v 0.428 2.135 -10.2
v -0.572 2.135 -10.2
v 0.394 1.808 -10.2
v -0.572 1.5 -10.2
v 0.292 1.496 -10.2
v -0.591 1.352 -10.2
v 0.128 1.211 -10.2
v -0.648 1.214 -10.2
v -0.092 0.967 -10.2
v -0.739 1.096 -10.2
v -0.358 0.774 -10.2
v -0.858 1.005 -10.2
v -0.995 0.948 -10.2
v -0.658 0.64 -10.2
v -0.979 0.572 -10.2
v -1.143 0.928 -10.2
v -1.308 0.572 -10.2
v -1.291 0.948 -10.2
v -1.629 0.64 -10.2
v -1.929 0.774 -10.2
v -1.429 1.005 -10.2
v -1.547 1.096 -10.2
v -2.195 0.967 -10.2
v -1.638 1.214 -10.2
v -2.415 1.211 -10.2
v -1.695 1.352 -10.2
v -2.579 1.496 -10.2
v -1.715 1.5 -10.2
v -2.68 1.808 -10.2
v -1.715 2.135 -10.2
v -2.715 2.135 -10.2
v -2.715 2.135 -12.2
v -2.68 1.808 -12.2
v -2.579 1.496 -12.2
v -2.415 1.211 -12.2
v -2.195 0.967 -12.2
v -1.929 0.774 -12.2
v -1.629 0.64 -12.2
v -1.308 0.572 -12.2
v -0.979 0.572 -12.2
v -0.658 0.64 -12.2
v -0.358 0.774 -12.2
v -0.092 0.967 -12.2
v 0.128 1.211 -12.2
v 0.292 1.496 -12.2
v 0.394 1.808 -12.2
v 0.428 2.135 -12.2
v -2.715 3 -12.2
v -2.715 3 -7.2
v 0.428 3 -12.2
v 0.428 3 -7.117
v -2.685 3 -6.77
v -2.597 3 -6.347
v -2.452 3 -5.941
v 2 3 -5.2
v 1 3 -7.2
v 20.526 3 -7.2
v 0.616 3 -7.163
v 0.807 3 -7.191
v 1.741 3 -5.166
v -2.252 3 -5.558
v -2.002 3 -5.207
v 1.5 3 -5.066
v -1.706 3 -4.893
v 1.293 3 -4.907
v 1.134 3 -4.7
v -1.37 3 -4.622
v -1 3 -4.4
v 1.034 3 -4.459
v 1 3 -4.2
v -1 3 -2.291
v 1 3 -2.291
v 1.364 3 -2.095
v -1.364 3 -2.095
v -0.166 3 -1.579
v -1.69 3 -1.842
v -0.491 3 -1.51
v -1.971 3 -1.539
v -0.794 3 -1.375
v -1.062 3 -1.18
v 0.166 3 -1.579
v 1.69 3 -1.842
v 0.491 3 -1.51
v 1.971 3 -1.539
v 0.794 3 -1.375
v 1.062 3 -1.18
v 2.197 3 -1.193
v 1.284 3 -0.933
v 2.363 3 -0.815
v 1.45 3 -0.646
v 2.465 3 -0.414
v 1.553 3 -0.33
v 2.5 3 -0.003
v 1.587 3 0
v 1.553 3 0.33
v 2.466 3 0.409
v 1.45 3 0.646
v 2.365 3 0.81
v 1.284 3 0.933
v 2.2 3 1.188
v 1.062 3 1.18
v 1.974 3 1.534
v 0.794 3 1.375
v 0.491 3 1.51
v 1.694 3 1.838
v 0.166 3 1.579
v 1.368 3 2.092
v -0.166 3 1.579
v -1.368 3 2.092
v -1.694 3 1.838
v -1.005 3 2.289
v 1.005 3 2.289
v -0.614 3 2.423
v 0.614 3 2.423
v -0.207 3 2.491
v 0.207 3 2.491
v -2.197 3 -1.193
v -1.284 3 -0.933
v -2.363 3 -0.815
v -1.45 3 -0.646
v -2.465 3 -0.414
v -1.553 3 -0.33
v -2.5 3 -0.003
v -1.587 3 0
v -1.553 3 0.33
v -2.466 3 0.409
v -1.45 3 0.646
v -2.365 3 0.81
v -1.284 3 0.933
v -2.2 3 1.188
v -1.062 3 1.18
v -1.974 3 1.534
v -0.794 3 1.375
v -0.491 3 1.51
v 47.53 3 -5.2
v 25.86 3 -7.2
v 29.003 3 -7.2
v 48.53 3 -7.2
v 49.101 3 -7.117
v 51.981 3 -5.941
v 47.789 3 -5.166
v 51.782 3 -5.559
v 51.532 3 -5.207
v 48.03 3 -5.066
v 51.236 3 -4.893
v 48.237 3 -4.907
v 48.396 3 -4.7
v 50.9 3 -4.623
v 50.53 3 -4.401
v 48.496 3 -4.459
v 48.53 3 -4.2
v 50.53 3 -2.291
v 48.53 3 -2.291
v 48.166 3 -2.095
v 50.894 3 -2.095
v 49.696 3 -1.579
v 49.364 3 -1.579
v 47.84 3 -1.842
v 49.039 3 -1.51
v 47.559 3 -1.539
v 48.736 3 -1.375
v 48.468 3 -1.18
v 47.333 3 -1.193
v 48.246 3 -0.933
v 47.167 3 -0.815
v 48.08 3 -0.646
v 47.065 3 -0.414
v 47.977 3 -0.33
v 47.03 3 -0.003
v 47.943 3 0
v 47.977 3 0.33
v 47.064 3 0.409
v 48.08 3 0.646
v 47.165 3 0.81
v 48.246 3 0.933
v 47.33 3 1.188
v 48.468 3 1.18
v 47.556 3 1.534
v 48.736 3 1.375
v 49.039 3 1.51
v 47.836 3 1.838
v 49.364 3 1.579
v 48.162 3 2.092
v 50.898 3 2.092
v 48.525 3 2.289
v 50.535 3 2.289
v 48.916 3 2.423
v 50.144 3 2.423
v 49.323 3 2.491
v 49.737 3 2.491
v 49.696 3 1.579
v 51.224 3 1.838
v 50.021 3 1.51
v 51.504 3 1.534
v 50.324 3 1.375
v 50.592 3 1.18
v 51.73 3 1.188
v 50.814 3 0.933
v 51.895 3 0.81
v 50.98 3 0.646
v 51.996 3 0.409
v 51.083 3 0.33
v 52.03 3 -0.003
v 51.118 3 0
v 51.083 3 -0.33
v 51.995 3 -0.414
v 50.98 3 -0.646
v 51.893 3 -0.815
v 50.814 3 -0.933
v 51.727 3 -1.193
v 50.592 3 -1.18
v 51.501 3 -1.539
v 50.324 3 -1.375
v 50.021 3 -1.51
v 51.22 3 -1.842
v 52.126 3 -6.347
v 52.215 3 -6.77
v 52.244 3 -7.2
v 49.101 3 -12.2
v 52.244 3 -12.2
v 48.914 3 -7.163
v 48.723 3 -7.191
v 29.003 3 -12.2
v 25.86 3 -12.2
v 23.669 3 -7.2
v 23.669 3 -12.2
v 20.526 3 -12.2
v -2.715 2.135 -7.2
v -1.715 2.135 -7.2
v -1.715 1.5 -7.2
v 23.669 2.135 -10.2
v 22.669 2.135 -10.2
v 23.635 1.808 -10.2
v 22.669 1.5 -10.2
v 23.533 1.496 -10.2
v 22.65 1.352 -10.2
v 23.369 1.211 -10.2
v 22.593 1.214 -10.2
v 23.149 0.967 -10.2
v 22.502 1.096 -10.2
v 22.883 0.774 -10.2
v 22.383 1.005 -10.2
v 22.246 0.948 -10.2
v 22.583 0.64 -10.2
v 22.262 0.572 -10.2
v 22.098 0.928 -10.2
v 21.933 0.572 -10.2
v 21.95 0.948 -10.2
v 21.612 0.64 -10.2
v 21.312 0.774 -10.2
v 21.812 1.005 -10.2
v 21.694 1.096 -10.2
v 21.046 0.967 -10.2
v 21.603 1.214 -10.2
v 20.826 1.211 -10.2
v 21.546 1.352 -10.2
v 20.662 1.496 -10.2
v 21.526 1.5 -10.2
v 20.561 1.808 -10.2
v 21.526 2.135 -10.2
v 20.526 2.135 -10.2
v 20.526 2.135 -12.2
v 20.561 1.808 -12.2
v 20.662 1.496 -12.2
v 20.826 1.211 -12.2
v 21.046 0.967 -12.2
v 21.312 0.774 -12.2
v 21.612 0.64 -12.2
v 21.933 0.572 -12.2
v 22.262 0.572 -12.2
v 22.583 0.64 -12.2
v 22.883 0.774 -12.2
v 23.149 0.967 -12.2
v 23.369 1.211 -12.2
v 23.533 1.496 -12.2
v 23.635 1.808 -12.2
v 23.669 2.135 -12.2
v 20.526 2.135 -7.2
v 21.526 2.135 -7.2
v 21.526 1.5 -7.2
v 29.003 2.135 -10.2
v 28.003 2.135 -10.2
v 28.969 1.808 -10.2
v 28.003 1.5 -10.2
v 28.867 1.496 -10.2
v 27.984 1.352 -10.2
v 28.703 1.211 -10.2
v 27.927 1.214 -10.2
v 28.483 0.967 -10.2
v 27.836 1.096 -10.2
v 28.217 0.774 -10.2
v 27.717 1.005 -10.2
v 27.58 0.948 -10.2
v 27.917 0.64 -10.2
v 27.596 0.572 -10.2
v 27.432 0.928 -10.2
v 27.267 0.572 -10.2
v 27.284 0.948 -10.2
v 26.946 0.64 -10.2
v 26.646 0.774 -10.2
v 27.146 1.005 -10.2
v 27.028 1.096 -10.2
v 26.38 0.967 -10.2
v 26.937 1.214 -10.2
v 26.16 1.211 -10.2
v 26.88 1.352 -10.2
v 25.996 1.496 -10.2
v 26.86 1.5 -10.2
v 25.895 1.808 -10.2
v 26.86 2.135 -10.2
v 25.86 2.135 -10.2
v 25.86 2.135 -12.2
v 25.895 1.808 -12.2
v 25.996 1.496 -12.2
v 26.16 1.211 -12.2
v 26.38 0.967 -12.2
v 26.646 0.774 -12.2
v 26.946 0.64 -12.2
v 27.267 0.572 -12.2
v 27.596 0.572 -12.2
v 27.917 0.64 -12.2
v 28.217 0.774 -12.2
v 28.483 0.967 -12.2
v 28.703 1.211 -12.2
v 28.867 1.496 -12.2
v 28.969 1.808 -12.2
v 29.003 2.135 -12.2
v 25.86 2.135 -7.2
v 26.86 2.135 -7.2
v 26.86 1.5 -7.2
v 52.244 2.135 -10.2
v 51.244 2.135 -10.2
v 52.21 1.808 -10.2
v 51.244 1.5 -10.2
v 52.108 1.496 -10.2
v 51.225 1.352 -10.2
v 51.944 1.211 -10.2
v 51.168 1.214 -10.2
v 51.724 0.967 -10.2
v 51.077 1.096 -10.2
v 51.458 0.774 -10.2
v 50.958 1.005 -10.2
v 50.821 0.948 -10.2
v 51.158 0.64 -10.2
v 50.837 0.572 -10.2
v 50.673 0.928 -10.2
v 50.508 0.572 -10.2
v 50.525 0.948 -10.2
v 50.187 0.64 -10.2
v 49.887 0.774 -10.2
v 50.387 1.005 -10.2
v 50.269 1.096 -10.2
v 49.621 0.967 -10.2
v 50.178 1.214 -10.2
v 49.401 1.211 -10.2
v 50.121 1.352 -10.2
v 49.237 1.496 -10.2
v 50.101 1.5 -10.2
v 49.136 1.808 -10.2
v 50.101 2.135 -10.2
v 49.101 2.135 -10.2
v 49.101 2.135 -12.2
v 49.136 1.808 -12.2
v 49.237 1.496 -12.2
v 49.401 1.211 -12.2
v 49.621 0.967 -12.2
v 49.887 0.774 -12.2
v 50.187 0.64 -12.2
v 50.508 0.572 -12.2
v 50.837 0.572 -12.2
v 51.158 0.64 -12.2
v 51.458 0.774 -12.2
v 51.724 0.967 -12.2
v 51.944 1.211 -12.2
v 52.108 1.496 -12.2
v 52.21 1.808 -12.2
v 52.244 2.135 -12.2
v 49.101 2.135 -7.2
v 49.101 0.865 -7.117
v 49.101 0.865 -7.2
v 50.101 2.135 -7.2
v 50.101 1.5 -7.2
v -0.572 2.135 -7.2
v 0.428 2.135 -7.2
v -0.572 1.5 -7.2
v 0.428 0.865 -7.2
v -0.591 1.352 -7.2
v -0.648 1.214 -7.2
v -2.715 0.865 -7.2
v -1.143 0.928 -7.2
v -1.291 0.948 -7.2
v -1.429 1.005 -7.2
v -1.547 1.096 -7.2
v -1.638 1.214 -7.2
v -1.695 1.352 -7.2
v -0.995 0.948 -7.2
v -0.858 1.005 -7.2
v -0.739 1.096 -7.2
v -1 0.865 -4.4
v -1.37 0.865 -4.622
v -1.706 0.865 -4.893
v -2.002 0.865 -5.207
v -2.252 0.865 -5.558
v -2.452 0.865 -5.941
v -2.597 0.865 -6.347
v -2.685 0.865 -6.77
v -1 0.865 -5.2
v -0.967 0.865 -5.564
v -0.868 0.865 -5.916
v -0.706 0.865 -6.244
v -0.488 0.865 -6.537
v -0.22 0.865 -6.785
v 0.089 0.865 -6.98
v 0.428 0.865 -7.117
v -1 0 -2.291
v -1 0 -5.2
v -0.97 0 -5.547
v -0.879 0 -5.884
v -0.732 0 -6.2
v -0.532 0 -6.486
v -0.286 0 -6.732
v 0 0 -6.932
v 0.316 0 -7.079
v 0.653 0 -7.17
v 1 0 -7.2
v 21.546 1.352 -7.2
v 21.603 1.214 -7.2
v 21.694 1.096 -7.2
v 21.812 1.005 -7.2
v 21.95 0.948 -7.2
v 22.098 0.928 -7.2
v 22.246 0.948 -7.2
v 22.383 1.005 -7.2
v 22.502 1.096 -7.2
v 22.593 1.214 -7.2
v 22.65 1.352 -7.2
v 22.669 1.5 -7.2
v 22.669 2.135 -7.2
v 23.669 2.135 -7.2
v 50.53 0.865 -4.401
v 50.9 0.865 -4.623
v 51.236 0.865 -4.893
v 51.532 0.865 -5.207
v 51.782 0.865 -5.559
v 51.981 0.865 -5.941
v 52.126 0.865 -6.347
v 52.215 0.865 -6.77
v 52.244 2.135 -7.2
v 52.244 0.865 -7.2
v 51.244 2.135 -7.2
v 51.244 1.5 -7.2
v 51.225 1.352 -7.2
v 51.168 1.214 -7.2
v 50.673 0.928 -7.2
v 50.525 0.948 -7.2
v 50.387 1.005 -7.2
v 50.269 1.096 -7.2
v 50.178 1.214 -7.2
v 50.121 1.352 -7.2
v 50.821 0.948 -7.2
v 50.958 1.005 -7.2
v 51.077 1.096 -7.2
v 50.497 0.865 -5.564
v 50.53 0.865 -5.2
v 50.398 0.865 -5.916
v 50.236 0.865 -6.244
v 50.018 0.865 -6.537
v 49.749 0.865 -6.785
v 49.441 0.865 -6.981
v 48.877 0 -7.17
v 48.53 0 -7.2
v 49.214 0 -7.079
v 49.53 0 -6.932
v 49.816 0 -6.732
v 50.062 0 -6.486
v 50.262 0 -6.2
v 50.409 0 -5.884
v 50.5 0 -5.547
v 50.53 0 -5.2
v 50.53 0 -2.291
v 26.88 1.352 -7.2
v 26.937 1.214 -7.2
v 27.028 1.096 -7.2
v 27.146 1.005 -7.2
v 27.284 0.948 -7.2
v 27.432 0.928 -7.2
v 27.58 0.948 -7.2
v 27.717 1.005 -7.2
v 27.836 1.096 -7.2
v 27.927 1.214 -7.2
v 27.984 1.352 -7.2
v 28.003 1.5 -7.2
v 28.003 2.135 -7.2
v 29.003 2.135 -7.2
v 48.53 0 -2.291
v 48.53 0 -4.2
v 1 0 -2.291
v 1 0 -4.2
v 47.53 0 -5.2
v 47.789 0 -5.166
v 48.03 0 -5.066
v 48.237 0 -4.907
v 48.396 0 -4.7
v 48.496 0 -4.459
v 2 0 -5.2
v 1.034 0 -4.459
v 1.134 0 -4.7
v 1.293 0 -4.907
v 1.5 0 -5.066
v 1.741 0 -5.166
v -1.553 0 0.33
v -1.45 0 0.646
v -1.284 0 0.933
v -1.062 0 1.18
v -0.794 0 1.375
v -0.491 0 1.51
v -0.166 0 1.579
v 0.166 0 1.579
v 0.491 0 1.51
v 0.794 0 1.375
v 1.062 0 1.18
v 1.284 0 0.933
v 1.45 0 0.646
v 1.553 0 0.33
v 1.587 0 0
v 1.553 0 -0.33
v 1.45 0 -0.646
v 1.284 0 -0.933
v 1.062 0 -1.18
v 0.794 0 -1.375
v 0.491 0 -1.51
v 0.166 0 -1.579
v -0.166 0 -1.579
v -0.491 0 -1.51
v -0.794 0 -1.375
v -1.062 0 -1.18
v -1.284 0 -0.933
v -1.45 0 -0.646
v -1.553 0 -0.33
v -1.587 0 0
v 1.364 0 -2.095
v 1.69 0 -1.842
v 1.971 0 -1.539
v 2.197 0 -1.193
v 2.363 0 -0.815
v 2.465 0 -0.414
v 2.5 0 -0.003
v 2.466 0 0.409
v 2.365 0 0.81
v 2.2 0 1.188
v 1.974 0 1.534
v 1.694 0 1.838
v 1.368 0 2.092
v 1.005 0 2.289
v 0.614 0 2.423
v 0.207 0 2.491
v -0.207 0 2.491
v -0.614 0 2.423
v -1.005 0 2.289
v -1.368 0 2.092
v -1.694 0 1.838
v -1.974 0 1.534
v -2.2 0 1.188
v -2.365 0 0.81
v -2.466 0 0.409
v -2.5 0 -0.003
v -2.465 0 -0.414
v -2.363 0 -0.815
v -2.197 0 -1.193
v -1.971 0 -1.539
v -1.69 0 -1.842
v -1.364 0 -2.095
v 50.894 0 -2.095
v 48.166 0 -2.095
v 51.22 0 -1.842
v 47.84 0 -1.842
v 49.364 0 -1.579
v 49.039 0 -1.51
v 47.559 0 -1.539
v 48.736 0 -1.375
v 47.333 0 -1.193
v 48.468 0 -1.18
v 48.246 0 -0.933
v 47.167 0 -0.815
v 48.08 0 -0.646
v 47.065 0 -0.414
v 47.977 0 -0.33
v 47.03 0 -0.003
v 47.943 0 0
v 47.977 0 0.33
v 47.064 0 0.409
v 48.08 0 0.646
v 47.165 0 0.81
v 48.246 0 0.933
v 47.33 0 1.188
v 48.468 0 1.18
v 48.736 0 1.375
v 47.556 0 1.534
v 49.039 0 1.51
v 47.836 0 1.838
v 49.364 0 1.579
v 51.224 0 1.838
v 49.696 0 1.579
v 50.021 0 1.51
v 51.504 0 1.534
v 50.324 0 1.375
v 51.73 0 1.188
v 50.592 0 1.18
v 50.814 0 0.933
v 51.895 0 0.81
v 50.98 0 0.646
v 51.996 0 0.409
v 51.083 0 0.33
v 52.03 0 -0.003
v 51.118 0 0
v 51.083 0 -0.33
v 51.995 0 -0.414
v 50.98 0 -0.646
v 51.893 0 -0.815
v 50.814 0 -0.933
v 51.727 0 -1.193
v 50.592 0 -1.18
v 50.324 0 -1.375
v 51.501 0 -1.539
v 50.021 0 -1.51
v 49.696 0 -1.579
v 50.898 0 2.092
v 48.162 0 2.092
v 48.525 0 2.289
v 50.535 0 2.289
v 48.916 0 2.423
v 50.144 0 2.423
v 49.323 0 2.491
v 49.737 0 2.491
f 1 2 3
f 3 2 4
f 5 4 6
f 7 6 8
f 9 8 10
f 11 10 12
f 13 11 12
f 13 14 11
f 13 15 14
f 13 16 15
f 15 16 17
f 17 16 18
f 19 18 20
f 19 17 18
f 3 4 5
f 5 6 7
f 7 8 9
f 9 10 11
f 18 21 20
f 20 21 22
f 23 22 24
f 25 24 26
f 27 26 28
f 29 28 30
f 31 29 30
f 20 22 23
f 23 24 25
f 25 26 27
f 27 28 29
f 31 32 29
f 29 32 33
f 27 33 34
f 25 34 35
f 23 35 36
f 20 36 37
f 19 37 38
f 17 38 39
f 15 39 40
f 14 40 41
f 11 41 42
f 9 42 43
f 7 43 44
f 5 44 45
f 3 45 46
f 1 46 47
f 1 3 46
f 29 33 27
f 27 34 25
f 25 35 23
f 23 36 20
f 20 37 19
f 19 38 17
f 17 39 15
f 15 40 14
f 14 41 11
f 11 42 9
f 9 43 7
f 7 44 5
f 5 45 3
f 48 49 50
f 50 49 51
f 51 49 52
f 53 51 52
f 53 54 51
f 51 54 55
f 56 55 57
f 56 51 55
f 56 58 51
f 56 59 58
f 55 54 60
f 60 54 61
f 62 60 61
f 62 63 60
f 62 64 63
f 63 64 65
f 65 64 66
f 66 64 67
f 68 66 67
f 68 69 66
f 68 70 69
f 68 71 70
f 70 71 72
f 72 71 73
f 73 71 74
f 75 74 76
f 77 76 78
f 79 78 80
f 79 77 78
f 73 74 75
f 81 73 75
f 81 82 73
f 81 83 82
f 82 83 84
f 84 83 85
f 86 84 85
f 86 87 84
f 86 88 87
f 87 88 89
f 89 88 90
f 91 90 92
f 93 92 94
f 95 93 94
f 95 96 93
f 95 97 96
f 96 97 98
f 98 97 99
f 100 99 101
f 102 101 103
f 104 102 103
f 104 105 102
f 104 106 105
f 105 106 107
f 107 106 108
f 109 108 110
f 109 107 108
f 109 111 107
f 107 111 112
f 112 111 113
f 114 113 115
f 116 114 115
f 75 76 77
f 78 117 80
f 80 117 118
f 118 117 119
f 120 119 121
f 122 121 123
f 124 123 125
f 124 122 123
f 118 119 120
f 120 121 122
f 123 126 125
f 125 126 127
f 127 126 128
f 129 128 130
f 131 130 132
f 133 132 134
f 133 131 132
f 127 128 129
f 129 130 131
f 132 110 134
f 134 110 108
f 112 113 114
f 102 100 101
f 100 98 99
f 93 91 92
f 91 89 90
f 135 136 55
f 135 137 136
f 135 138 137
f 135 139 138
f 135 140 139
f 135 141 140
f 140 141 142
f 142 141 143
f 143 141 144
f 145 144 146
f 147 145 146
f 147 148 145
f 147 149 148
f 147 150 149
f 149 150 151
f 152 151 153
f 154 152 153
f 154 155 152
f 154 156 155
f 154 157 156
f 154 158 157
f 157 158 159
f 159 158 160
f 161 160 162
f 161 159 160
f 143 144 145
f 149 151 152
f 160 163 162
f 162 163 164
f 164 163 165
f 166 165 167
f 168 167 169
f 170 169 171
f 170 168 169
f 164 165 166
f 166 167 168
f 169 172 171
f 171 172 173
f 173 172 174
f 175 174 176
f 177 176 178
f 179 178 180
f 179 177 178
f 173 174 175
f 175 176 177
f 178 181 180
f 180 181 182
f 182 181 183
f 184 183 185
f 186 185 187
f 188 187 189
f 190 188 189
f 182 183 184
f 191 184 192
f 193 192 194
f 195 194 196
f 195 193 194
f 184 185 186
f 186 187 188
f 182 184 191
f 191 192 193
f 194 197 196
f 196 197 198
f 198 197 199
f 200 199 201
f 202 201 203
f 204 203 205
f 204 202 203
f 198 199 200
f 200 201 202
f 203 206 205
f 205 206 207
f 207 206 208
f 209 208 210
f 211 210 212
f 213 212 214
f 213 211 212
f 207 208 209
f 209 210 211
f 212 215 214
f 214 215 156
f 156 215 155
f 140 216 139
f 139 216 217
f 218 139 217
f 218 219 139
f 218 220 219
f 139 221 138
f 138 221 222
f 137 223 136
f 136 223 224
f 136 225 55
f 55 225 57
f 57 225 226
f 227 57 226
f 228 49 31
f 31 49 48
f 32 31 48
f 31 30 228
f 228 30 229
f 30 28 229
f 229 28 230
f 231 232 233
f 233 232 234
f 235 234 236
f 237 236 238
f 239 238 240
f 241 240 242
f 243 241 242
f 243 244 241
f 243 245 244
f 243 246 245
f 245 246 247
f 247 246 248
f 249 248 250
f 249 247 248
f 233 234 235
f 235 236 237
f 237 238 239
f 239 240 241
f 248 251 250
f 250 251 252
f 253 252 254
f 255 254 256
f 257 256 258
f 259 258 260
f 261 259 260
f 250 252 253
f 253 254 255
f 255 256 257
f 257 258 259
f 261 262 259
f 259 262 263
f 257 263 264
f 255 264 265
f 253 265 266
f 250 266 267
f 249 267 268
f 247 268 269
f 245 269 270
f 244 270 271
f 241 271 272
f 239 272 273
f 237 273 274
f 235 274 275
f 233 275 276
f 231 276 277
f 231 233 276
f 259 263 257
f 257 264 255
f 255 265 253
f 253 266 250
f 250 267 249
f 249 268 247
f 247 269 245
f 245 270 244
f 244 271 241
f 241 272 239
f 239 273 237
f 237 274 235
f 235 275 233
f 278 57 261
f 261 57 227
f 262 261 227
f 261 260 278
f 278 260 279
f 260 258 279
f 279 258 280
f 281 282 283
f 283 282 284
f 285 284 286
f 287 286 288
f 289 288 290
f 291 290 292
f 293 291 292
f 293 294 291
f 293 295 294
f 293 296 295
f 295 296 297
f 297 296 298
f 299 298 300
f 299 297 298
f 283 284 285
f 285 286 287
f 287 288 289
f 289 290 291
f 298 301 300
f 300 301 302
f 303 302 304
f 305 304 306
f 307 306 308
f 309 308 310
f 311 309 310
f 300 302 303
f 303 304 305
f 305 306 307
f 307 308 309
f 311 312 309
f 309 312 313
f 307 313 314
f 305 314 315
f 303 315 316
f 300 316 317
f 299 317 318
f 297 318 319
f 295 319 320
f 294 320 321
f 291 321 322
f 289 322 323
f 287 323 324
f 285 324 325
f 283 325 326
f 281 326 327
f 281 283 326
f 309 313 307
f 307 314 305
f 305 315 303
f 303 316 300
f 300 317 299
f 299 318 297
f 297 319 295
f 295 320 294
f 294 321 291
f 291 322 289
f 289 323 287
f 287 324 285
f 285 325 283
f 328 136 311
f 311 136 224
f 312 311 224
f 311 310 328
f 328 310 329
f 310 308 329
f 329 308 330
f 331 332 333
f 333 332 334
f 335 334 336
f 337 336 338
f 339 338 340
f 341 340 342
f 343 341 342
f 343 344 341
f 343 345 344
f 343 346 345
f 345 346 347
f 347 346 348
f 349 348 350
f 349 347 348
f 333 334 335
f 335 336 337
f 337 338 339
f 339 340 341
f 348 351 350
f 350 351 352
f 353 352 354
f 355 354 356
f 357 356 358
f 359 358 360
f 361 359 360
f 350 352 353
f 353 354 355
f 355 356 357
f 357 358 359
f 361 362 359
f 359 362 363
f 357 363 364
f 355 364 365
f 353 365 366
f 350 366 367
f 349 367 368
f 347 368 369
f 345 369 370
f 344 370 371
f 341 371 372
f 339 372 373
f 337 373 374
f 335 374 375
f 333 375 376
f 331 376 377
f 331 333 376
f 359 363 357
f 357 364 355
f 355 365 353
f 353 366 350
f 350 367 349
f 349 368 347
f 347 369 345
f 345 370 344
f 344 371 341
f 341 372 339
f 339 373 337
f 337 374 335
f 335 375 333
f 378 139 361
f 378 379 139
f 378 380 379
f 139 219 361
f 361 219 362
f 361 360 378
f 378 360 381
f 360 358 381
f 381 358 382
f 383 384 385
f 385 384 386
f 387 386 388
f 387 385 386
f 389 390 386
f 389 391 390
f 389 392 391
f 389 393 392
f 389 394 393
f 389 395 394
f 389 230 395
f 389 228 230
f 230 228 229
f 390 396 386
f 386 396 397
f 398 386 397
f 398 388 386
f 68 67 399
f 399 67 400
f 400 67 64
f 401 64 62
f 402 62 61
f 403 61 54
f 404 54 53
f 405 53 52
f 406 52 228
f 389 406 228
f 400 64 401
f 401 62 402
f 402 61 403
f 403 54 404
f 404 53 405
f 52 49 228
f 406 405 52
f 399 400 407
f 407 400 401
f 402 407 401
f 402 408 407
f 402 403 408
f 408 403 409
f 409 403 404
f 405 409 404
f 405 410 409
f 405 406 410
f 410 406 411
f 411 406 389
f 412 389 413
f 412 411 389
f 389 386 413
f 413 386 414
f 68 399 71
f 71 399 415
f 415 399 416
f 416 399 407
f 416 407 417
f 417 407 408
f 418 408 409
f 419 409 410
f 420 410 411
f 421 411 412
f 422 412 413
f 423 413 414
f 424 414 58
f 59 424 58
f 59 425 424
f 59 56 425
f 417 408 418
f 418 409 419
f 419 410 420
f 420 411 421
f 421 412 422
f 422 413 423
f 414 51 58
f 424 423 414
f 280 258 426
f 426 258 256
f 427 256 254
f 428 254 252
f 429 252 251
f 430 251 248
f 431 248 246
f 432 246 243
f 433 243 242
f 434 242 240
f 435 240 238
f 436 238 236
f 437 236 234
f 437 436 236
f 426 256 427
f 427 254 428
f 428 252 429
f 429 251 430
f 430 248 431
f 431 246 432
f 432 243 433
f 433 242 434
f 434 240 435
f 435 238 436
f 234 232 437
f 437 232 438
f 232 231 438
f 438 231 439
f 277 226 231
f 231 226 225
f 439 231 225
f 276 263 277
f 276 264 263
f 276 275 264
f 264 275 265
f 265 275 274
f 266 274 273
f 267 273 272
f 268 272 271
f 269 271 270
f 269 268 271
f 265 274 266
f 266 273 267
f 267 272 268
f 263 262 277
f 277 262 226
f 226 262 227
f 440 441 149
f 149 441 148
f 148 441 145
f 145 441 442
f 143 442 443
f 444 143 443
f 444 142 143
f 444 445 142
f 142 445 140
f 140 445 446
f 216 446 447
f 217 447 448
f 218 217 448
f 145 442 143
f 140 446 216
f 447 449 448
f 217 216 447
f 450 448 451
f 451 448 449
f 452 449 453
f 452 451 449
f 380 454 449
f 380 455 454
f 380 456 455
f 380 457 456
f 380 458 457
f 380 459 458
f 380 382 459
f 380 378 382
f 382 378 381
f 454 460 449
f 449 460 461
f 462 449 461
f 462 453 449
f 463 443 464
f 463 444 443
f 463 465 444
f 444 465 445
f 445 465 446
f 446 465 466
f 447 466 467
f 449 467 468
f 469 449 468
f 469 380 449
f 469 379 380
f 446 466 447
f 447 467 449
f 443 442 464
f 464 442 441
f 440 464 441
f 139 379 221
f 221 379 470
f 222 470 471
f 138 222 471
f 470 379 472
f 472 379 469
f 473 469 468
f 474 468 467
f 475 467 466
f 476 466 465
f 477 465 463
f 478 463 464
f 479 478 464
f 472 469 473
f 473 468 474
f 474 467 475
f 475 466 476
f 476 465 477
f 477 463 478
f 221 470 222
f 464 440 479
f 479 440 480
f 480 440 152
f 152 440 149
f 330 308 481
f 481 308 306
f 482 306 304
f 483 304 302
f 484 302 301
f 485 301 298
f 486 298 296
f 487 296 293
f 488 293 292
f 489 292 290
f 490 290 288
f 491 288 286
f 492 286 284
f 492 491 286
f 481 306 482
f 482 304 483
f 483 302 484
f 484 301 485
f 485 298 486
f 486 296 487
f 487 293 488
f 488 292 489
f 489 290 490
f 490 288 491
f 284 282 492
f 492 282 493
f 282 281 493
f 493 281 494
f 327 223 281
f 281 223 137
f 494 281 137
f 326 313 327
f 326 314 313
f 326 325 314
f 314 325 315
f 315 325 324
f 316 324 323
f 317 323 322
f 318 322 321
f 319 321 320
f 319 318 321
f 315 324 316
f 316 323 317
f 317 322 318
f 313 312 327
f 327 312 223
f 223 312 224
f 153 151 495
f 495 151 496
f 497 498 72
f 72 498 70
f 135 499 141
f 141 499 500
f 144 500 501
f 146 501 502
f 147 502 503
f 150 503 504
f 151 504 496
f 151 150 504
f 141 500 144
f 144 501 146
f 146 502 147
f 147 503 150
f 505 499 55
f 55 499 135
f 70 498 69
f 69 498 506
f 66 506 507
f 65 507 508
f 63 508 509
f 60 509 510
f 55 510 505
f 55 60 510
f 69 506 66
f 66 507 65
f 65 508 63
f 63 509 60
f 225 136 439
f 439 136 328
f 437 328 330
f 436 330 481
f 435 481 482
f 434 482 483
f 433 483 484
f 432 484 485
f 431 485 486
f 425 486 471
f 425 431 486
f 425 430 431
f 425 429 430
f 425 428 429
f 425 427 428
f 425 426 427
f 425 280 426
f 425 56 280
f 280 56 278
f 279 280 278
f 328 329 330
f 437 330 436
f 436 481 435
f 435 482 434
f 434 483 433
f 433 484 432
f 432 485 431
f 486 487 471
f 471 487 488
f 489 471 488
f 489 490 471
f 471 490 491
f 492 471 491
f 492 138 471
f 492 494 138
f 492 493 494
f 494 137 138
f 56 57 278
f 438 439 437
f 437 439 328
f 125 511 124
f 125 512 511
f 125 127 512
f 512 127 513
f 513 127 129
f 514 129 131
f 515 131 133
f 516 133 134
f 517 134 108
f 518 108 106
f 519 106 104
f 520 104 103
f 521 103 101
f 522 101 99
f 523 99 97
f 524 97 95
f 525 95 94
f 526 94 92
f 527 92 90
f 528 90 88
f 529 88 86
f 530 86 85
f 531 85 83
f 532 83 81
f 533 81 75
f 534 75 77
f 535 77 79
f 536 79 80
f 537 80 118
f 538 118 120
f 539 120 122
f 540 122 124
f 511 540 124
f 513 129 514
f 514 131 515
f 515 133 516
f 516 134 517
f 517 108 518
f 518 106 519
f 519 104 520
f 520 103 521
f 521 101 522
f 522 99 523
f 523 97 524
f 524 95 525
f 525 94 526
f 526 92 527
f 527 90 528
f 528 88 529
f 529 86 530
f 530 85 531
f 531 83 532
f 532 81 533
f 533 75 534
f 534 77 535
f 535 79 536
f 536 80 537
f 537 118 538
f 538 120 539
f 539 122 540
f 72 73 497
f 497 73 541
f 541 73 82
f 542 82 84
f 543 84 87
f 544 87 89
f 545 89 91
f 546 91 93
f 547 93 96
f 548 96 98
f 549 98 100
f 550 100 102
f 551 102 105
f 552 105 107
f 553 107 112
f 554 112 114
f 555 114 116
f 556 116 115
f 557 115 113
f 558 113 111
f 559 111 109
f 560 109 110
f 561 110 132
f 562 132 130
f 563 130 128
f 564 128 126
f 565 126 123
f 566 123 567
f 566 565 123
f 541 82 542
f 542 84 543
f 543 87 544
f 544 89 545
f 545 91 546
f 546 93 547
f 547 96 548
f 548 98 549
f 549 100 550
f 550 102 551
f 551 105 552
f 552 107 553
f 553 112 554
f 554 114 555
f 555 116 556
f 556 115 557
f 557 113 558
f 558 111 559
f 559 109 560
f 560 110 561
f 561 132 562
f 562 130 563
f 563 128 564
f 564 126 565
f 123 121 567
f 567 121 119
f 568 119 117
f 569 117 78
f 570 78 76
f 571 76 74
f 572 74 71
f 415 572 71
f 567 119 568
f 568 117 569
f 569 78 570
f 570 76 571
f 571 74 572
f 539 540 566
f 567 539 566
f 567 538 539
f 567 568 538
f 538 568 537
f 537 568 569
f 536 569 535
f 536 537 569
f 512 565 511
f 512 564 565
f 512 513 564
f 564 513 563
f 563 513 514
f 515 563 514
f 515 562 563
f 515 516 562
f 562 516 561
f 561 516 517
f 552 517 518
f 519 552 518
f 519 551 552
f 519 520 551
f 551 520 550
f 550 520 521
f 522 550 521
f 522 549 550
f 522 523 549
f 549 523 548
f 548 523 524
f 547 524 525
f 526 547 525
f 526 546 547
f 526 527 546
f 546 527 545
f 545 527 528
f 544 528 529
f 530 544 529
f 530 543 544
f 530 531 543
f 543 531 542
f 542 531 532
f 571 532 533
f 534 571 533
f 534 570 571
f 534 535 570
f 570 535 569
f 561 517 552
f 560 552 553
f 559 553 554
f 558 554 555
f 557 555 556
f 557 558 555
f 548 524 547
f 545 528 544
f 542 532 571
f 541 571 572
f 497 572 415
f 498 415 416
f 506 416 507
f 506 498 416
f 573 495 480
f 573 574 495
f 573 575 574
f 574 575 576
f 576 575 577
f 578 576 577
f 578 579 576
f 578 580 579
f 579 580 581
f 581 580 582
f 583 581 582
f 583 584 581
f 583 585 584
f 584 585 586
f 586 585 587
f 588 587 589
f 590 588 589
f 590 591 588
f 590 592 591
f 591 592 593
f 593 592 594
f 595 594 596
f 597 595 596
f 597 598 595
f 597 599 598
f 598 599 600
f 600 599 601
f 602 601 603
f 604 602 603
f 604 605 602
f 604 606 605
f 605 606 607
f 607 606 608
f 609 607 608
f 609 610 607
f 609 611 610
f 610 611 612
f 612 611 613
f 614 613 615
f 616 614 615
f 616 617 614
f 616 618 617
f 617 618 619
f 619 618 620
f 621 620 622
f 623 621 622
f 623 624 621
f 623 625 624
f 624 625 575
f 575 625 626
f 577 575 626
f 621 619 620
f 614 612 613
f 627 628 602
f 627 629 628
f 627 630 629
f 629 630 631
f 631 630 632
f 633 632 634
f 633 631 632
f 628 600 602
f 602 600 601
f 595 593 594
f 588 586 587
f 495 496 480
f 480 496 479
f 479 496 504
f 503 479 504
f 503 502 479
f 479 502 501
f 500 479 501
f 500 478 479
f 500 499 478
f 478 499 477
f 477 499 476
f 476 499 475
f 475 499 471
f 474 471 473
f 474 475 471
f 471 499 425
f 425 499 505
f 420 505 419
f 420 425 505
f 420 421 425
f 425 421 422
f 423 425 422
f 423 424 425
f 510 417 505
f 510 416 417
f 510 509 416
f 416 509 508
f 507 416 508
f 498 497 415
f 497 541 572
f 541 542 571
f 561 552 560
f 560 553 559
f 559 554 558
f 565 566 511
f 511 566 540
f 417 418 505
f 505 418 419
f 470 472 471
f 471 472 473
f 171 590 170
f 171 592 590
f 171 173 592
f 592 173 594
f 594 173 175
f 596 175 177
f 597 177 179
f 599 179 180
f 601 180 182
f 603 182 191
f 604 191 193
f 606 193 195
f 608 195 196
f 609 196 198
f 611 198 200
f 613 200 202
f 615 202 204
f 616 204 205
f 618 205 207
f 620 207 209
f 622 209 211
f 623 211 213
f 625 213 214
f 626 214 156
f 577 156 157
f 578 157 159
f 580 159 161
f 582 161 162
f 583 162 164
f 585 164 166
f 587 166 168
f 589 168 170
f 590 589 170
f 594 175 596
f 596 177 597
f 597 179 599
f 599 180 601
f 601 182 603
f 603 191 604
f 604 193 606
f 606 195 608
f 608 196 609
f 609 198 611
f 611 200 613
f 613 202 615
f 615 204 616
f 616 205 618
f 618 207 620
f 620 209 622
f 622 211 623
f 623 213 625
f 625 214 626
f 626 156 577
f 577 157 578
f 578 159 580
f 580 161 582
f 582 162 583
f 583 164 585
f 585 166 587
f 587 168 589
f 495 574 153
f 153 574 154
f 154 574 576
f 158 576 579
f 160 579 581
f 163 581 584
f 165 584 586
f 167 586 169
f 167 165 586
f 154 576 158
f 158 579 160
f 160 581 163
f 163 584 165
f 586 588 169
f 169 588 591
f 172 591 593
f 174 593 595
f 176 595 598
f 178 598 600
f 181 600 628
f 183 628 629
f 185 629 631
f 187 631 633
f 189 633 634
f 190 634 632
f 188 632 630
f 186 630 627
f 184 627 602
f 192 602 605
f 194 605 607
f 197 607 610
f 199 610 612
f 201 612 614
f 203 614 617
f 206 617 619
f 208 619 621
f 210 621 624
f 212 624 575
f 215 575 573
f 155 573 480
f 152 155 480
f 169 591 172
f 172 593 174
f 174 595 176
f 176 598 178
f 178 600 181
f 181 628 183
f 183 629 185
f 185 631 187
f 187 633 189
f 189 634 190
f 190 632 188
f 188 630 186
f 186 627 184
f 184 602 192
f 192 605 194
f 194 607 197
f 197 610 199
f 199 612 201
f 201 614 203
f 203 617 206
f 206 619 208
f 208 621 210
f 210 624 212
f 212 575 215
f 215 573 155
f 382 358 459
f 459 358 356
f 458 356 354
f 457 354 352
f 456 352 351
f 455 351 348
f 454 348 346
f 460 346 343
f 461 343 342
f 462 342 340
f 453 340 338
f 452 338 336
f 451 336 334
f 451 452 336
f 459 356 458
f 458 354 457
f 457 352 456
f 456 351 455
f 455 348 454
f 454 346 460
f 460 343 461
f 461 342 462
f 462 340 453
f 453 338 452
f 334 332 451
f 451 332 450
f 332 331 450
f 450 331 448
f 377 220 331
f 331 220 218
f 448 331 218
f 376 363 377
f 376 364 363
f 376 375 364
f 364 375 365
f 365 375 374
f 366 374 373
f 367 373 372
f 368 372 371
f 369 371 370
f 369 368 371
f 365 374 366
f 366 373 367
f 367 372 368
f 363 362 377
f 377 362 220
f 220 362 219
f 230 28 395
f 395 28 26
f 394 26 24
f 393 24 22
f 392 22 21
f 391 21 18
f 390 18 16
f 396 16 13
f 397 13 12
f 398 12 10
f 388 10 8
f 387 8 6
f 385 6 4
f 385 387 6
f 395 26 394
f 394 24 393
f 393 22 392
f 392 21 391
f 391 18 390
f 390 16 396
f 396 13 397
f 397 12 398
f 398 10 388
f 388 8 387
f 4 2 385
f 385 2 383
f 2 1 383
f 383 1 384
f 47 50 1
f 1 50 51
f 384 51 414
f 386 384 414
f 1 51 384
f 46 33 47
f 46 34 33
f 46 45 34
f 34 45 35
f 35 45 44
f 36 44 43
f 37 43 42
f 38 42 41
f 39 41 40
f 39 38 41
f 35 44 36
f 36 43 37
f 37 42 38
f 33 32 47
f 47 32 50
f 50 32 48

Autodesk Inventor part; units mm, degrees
ref_plane "YZ Plane" through (0, 0, 0) normal (1, 0, 0) x (0, 1, 0)
ref_plane "XZ Plane" through (0, 0, 0) normal (0, 1, 0) x (-1, 0, 0)
ref_plane "XY Plane" through (0, 0, 0) normal (0, 0, 1) x (1, 0, 0)
sketch "Sketch1" plane through (0, 0, 0) normal (0, 1, 0) x (-1, 0, 0)
  circle A0 centre (0, 0) radius 1.5875
  line L0 (0, 0) -> (22.8671, 0) construction
  circle A1 centre (-49.53, 0) radius 1.5875
  circle A2 centre (-49.53, 0) radius 2.5
  line L1 (-24.765, 0) -> (-24.765, 33.4897) construction
  line L2 (0, 0) -> (0, -6.322) construction
  line L3 (-49.53, 0) -> (-44.53, 0) construction
  circle A3 centre (0, 0) radius 2.5
  dimension "d0" = 3.175
  dimension "d2" = 49.53
  dimension "d3" = 3.175
  dimension "d4" = 5
  dimension "d11" = 5
extrude "Extrusion1" add sketch "Sketch1" along normal blind 3
sketch "Sketch2" plane through (49.53, 0, 0) normal (0, -1, 0) x (1, 0, 0)
  line L0 (1, -2.2) -> (1, -5.2)
  line L1 (-1, -7.2) -> (-48.53, -7.2)
  line L2 (-50.53, -5.2) -> (-50.53, -2.2)
  line L3 (-48.53, -2.2) -> (-48.53, -4.2)
  line L4 (-47.53, -5.2) -> (-2, -5.2)
  line L5 (-1, -4.2) -> (-1, -2.2)
  line L6 (0, 0) -> (0, -7.7115) construction
  line L7 (1, -2.2) -> (-1, -2.2)
  line L8 (-49.53, 0) -> (-49.53, -7.2415) construction
  line L9 (-48.53, -2.2) -> (-50.53, -2.2)
  arc A0 (-48.53, -4.2) -> (-47.53, -5.2) centre (-47.53, -4.2) ccw
  arc A1 (-2, -5.2) -> (-1, -4.2) centre (-2, -4.2) ccw
  arc A2 (-50.53, -5.2) -> (-48.53, -7.2) centre (-48.53, -5.2) ccw
  arc A3 (-1, -7.2) -> (1, -5.2) centre (-1, -5.2) ccw
  point P0 (1, -7.2)
  point P1 (0, -2.2)
  point P2 (-49.53, -2.2)
  dimension "d14" = 5
  dimension "d15" = 2.2
  dimension "d16" = 2
  dimension "d17" = 2
  dimension "d18" = 2.2
  dimension "d19" = 1
  dimension "d20" = 2
extrude "Extrusion2" add sketch "Sketch2" against normal blind 3
sketch "Sketch3" plane through (48.53, 0, -7.2) normal (0, 0, -1) x (-1, 0, 0)
  arc A0 (20.5268, 1.5) -> (21.6698, 1.5) centre (21.0983, 1.5) ccw
  line L0 (47.53, 0) -> (0, 0) construction
  line L1 (21.0983, 0) -> (21.0983, 3) construction
  line L2 (0, 3) -> (47.53, 3) projected
  line L3 (-2, 0) -> (-2, 3) projected
  line L4 (21.6698, 1.5) -> (21.6698, 2.135)
  line L5 (21.6698, 2.135) -> (22.6698, 2.135)
  line L6 (22.6698, 2.135) -> (22.6698, 3)
  line L7 (20.5268, 1.5) -> (20.5268, 2.135)
  line L8 (20.5268, 2.135) -> (19.5268, 2.135)
  line L9 (19.5268, 2.135) -> (19.5268, 3)
  line L10 (21.0983, 1.5) -> (22.315, 1.5) construction
  line L11 (22.6698, 3) -> (19.5268, 3)
  point P0 (48.53, 0)
  point P1 (46.53, 3)
  point P2 (1, 3)
  dimension "d23" = 1.143
  dimension "d26" = 23.0983
  dimension "d27" = 1
  dimension "d28" = 1
  dimension "d29" = 0.635
  dimension "d30" = 0.635
  dimension "d31" = 1.5
extrude "Extrusion3" add sketch "Sketch3" along normal blind 5
pattern_linear "Rectangular Pattern1" count 2 spacing 23.241 along (1, 0, 0) of "Extrusion3"
sketch "Sketch4" plane through (49.1012, 3, -7.2) normal (0, 1, 0) x (1, 0, 0)
  arc A0 (0, -3.143) -> (3.143, 0) centre (0, 0) ccw
  line L0 (3.143, 0) -> (0, 0)
  line L1 (0, 0) -> (0, -3.143)
  point P0 (-49.1012, -7.2)
extrude "Extrusion4" add sketch "Sketch4" against normal blind 2.135
pattern_linear "Rectangular Pattern2" count 2 spacing 5.334 along (-1, 0, 0) of "Extrusion3"
pattern_linear "Rectangular Pattern3" count 2 spacing 28.575 along (-1, 0, 0) of "Extrusion3"
sketch "Sketch6" plane through (-2.7148, 3, -7.2) normal (0, 1, 0) x (1, 0, 0)
  arc A0 (0, 0) -> (3.143, -3.143) centre (3.143, 0) ccw
  line L0 (3.143, -3.143) -> (3.143, 0)
  line L1 (3.143, 0) -> (0, 0)
  point P0 (2.7148, -7.2)
extrude "Extrusion5" add sketch "Sketch6" against normal blind 2.135
sketch "Sketch7" plane through (52.2442, 3, -12.2) normal (0, 0, -1) x (-1, 0, 0)
  line L0 (2.143, -1.5) -> (2.143, -0.865) construction
  line L1 (2.143, -0.865) -> (3.143, -0.865) construction
  line L2 (3.143, -0.865) -> (3.143, 0) construction
  line L3 (3.143, 0) -> (0, 0) construction
  line L4 (0, 0) -> (0, -0.865) construction
  line L5 (0, -0.865) -> (1, -0.865) construction
  line L6 (1, -0.865) -> (1, -1.5) construction
  arc A0 (1, -1.5) -> (2.143, -1.5) centre (1.5715, -1.5) ccw construction
  line L7 (0, -0.865) -> (0, 0)
  line L8 (0, 0) -> (3.143, 0)
  line L9 (3.143, 0) -> (3.143, -0.865)
  arc A1 (0, -0.865) -> (3.143, -0.865) centre (1.5715, -0.865) ccw
  line L10 (3.143, -0.865) -> (0, -0.865) construction
  line L11 (3.143, -0.865) -> (3.143, 0) construction
  point P0 (52.2442, -3)
extrude "Extrusion6" add sketch "Sketch7" against normal blind 2
pattern_linear "Rectangular Pattern4" count 2 spacing 23.241 along (-1, 0, 0) of "Extrusion6"
pattern_linear "Rectangular Pattern5" count 2 spacing 28.575 along (-1, 0, 0) of "Extrusion6"
pattern_linear "Rectangular Pattern6" count 2 spacing 51.816 along (-1, 0, 0) of "Extrusion6"
sketch "Sketch8" plane through (48.53, 0, -7.2) normal (0, 0, -1) x (-1, 0, 0)
  line L0 (-4.8097, 14.9523) -> (52.3403, 14.9523) construction
  line L1 (52.3403, 14.9523) -> (52.3403, 4.9523) construction
  line L2 (52.3403, 4.9523) -> (-4.8097, 4.9523) construction
  line L3 (-4.8097, 4.9523) -> (-4.8097, 14.9523) construction
  line L4 (-4.6827, 26.2305) -> (23.6383, 26.2305) construction
  line L5 (23.6383, 26.2305) -> (23.6383, 17.1827) construction
  line L6 (23.6383, 17.1827) -> (-4.6827, 17.1827) construction
  line L7 (-4.6827, 17.1827) -> (-4.6827, 26.2305) construction
  line L8 (52.2133, 26.2305) -> (23.8923, 26.2305) construction
  line L9 (23.8923, 26.2305) -> (23.8923, 17.1827) construction
  line L10 (23.8923, 17.1827) -> (52.2133, 17.1827) construction
  line L11 (52.2133, 17.1827) -> (52.2133, 26.2305) construction
  circle A0 centre (-2.1427, 14.9523) radius 0.635
  circle A1 centre (21.0983, 14.9523) radius 0.635
  circle A2 centre (26.4323, 14.9523) radius 0.635
  circle A3 centre (49.6733, 14.9523) radius 0.635
  arc A4 (-2.7142, 1.5) -> (-1.5712, 1.5) centre (-2.1427, 1.5) ccw projected
  line L12 (-2.1427, 1.5) -> (-2.1427, 11.5483) construction
  arc A5 (20.5268, 1.5) -> (21.6698, 1.5) centre (21.0983, 1.5) ccw construction
  arc A6 (25.8608, 1.5) -> (27.0038, 1.5) centre (26.4323, 1.5) ccw construction
  arc A7 (49.1018, 1.5) -> (50.2448, 1.5) centre (49.6733, 1.5) ccw construction
  line L13 (21.0983, 1.5) -> (21.0983, 9.9523) construction
  line L14 (26.4323, 1.5) -> (26.4323, 9.0967) construction
  line L15 (49.6733, 1.5) -> (49.6733, 9.9523) construction
  line L16 (24.8608, 2.135) -> (24.8608, 3) construction
  line L17 (22.6698, 3) -> (24.8608, 3) construction
  line L18 (22.6698, 3) -> (22.6698, 2.135) construction
  line L19 (22.6698, 2.135) -> (21.6698, 2.135) construction
  line L20 (21.6698, 2.135) -> (21.6698, 1.5) construction
  arc A8 (20.5268, 1.5) -> (21.6698, 1.5) centre (21.0983, 1.5) ccw construction
  line L21 (20.5268, 1.5) -> (20.5268, 2.135) construction
  line L22 (20.5268, 2.135) -> (19.5268, 2.135) construction
  line L23 (19.5268, 2.135) -> (19.5268, 3) construction
  line L24 (0, 3) -> (19.5268, 3) construction
  line L25 (0, 0) -> (0, 3) construction
  line L26 (47.53, 0) -> (0, 0) construction
  line L27 (47.53, 0) -> (47.53, 3) construction
  line L28 (28.0038, 3) -> (47.53, 3) construction
  line L29 (28.0038, 3) -> (28.0038, 2.135) construction
  line L30 (28.0038, 2.135) -> (27.0038, 2.135) construction
  line L31 (27.0038, 2.135) -> (27.0038, 1.5) construction
  arc A9 (25.8608, 1.5) -> (27.0038, 1.5) centre (26.4323, 1.5) ccw construction
  line L32 (25.8608, 1.5) -> (25.8608, 2.135) construction
  line L33 (25.8608, 2.135) -> (24.8608, 2.135) construction
  line L34 (47.53, 0) -> (0, 0) construction
  line L35 (23.765, 0) -> (23.765, 9.6631) construction
  point P0 (48.53, 0)
  dimension "d57" = 57.15
  dimension "d58" = 10
  dimension "d59" = 28.321
  dimension "d60" = 0.127
  dimension "d61" = 28.321
  dimension "d62" = 0.254
  dimension "d63" = 0.127
  dimension "d64" = 1.27
  dimension "d65" = 2.54
  dimension "d66" = 1.27
  dimension "d67" = 2.54
  dimension "d68" = 1.27
  dimension "d69" = 1.27
  dimension "d70" = 2.54
  dimension "d71" = 2.54
  dimension "d72" = 23.241
  dimension "d73" = 5.334
  dimension "d74" = 23.241
  dimension "d75" = 2.6673
  dimension "d76" = 2.6667
properties part number "HDMIPluginModuleHolder01"
